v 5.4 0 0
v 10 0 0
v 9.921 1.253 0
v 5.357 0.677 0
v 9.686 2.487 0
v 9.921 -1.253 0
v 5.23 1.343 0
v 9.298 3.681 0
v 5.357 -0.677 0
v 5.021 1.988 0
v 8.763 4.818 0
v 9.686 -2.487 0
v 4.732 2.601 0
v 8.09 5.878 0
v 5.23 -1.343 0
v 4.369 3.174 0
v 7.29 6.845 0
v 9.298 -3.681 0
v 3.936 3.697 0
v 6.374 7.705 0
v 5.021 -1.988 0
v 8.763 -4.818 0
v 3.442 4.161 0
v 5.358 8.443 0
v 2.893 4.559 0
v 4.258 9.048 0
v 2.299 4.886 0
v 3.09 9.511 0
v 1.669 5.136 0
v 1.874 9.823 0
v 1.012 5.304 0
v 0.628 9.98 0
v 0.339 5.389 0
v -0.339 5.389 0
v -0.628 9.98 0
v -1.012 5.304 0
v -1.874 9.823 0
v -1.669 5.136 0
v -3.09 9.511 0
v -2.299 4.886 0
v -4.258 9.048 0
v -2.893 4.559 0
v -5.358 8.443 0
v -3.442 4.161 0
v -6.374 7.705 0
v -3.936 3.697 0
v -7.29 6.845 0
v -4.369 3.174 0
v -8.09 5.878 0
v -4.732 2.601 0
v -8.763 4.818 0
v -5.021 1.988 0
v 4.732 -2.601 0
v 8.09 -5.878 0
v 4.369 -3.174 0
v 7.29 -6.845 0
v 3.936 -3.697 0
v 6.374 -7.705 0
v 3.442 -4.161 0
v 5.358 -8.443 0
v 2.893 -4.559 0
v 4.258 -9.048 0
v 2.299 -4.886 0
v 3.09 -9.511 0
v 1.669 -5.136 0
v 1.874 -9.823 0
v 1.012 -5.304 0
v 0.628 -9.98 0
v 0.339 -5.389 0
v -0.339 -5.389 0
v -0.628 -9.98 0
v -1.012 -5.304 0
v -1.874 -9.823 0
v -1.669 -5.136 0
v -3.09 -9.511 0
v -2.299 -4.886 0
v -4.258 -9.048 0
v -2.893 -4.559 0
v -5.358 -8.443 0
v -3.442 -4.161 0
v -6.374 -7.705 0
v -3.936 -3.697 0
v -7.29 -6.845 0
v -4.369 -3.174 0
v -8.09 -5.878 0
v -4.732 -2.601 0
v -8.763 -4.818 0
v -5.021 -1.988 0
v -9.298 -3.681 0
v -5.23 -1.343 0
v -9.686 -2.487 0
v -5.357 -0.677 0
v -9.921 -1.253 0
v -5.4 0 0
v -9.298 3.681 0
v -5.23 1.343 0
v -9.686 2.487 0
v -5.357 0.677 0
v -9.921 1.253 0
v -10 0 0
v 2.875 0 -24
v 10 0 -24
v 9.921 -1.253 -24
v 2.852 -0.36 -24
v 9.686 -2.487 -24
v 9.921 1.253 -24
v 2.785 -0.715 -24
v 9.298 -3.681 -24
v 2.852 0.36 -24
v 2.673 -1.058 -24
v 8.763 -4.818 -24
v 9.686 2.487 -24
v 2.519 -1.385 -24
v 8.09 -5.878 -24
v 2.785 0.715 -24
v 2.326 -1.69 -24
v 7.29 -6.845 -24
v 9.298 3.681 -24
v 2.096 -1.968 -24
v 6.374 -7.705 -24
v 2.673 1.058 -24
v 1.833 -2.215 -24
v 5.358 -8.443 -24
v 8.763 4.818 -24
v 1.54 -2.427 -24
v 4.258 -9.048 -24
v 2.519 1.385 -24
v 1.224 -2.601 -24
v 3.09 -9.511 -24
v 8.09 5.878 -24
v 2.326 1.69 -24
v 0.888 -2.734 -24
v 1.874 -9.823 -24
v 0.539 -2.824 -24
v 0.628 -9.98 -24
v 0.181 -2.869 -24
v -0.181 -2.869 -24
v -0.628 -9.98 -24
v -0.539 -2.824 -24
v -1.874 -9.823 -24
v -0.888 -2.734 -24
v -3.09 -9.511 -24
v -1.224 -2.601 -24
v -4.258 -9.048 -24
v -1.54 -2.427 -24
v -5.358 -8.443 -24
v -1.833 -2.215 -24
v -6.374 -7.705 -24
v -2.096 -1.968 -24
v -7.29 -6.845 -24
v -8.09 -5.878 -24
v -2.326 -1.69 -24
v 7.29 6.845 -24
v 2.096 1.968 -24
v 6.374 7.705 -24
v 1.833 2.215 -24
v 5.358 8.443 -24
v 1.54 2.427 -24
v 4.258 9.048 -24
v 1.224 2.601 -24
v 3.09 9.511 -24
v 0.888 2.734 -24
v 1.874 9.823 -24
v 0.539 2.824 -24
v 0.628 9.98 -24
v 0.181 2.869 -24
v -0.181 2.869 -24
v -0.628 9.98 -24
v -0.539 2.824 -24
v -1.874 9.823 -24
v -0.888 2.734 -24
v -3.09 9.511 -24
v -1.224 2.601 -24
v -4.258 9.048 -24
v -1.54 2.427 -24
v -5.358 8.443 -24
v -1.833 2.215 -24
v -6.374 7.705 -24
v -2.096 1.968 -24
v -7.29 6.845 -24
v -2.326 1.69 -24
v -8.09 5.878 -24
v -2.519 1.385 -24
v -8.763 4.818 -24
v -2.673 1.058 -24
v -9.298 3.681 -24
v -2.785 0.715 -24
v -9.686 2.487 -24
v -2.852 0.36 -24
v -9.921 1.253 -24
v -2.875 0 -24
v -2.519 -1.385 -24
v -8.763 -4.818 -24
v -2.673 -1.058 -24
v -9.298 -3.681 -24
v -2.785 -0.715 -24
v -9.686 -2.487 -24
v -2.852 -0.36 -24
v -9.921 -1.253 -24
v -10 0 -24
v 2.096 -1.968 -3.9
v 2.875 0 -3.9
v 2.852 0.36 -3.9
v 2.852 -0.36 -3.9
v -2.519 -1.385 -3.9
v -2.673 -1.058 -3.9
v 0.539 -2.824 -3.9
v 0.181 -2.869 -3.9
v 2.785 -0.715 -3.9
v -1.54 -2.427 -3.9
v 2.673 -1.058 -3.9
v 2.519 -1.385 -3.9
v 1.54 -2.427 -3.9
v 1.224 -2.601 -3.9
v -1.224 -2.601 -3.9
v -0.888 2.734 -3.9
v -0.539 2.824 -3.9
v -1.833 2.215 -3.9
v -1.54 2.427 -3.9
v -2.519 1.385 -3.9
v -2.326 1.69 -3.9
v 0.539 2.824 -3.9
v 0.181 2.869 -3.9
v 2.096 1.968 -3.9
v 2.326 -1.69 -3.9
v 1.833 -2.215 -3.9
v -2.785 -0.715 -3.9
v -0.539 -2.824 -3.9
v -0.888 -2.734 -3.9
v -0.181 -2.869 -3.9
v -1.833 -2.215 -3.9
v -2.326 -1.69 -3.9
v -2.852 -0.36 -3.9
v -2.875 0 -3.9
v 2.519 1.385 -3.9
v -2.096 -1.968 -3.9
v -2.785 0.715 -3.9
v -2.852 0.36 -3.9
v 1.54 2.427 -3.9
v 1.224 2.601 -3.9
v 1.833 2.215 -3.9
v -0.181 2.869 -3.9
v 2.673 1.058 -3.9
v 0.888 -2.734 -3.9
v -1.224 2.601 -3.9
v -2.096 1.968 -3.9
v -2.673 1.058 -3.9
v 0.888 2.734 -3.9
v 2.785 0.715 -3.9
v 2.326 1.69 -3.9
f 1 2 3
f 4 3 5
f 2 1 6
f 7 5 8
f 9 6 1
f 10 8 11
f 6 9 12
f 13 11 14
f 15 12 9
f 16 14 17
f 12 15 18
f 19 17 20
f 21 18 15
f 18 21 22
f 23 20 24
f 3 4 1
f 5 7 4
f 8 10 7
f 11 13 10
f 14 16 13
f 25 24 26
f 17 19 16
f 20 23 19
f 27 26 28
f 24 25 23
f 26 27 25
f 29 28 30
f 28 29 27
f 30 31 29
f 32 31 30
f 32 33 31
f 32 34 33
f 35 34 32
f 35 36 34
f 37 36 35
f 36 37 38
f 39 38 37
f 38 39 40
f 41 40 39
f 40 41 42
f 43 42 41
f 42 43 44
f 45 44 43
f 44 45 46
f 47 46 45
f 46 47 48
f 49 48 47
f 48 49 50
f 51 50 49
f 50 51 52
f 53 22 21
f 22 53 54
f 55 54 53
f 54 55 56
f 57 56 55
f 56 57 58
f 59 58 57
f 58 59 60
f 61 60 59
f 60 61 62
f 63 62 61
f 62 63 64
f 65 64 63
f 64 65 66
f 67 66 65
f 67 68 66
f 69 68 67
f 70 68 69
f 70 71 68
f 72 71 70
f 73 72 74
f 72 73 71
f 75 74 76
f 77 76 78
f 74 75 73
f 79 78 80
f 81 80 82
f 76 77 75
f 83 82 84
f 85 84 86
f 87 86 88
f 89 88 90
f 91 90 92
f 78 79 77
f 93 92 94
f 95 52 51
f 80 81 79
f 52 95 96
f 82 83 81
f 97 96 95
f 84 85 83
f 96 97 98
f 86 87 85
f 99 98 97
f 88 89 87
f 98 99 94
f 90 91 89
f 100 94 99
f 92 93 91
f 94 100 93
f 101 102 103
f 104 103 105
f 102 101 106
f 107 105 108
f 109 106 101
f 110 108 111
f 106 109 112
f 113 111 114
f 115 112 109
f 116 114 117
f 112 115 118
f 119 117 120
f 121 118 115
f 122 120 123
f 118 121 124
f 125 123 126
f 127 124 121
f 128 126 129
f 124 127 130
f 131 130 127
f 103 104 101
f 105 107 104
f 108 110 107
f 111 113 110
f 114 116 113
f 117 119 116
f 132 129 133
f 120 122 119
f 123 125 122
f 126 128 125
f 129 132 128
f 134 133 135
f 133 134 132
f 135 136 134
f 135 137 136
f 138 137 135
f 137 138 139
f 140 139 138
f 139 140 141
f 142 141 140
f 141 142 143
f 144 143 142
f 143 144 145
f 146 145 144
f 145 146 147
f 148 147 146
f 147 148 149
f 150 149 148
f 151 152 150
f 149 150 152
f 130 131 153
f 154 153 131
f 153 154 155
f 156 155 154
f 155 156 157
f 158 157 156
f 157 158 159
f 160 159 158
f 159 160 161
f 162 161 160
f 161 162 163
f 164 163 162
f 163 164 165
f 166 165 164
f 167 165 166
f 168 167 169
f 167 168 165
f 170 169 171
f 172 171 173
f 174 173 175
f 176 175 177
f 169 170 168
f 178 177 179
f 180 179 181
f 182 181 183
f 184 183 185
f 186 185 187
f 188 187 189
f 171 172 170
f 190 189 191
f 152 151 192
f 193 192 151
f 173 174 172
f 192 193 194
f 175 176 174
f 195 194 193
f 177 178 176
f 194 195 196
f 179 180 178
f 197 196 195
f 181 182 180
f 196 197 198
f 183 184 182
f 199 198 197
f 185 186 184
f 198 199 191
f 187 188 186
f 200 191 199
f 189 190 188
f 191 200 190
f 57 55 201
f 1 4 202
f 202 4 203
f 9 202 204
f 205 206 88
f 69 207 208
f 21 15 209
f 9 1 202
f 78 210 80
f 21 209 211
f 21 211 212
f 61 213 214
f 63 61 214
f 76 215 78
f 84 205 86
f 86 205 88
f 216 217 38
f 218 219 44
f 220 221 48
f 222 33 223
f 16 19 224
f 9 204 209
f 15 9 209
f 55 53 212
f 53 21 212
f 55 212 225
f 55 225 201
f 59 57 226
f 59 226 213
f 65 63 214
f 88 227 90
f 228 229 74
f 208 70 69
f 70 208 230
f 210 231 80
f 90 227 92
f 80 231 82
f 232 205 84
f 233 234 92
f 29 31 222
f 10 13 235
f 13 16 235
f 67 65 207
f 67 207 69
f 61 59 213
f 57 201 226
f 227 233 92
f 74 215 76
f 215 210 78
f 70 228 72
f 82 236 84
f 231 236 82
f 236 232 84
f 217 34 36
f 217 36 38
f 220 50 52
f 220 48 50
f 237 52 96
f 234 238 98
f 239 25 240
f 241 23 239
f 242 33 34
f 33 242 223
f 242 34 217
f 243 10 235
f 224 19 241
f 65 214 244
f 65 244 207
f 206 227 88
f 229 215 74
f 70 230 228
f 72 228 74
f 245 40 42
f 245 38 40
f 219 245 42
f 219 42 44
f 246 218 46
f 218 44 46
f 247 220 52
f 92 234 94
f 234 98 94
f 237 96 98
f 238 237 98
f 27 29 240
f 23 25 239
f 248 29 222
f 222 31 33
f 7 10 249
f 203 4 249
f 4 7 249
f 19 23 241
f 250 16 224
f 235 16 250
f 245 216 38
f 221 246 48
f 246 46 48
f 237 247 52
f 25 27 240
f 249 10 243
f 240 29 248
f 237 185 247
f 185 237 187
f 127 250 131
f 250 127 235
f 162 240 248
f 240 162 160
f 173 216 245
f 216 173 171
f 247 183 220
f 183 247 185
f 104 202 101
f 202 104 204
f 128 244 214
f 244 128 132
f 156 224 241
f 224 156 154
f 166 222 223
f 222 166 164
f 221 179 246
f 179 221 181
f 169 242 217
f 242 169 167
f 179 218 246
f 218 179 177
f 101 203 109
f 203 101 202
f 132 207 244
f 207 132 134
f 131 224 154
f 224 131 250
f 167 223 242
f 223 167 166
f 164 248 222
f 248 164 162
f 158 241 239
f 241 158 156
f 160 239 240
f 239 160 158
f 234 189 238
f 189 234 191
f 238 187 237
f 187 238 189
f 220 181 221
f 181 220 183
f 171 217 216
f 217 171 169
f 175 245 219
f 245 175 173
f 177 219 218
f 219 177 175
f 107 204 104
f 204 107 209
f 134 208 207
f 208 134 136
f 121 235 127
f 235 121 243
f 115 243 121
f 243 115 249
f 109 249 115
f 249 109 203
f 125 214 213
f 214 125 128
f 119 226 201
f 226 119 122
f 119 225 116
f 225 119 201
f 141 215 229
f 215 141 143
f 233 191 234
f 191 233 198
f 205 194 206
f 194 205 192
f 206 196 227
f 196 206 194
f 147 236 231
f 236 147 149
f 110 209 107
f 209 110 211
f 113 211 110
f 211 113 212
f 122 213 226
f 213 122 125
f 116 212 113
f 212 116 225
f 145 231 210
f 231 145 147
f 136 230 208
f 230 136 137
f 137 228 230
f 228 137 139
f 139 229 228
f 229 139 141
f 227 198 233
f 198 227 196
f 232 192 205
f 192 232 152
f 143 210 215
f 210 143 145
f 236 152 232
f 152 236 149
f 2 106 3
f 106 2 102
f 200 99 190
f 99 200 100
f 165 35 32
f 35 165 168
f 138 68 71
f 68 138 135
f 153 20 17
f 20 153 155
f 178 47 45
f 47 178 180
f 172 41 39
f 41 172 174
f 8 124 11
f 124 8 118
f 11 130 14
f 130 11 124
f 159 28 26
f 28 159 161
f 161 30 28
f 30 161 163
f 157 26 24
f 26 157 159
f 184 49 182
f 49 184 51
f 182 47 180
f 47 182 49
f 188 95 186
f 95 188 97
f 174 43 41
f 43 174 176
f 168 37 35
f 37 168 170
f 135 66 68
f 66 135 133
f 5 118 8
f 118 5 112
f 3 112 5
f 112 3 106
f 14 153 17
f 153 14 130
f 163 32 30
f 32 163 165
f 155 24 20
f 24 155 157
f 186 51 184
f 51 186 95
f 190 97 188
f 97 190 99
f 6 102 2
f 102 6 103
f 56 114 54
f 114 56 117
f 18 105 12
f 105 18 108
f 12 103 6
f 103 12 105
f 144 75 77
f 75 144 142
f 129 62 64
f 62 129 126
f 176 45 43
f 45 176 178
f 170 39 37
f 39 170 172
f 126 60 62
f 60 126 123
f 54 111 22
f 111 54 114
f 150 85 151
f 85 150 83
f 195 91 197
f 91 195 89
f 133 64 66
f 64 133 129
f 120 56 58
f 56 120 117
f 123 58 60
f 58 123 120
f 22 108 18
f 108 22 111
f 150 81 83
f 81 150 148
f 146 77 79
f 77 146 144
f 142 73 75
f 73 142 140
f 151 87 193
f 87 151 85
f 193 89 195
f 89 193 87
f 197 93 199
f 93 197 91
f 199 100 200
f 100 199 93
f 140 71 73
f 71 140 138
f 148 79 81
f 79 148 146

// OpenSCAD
$fn = 50;


difference() {
	union() {
		translate(v = [0, 0, -24.0000000000]) {
			cylinder(h = 24, r = 10.0000000000);
		}
		cylinder(h = 0, r = 13.0000000000);
	}
	union() {
		translate(v = [0, 0, 0]) {
			rotate(a = [0, 0, 0]) {
				difference() {
					union() {
						#translate(v = [0, 0, -24.0000000000]) {
							cylinder(h = 24, r = 2.6000000000);
						}
						#translate(v = [0, 0, -3.9000000000]) {
							cylinder(h = 3.9000000000, r = 10.0000000000, r1 = 2.8750000000, r2 = 5.4000000000);
						}
						#translate(v = [0, 0, -24.0000000000]) {
							cylinder(h = 24, r = 2.8750000000);
						}
						#translate(v = [0, 0, -24.0000000000]) {
							cylinder(h = 24, r = 2.6000000000);
						}
					}
					union();
				}
			}
		}
	}
}
